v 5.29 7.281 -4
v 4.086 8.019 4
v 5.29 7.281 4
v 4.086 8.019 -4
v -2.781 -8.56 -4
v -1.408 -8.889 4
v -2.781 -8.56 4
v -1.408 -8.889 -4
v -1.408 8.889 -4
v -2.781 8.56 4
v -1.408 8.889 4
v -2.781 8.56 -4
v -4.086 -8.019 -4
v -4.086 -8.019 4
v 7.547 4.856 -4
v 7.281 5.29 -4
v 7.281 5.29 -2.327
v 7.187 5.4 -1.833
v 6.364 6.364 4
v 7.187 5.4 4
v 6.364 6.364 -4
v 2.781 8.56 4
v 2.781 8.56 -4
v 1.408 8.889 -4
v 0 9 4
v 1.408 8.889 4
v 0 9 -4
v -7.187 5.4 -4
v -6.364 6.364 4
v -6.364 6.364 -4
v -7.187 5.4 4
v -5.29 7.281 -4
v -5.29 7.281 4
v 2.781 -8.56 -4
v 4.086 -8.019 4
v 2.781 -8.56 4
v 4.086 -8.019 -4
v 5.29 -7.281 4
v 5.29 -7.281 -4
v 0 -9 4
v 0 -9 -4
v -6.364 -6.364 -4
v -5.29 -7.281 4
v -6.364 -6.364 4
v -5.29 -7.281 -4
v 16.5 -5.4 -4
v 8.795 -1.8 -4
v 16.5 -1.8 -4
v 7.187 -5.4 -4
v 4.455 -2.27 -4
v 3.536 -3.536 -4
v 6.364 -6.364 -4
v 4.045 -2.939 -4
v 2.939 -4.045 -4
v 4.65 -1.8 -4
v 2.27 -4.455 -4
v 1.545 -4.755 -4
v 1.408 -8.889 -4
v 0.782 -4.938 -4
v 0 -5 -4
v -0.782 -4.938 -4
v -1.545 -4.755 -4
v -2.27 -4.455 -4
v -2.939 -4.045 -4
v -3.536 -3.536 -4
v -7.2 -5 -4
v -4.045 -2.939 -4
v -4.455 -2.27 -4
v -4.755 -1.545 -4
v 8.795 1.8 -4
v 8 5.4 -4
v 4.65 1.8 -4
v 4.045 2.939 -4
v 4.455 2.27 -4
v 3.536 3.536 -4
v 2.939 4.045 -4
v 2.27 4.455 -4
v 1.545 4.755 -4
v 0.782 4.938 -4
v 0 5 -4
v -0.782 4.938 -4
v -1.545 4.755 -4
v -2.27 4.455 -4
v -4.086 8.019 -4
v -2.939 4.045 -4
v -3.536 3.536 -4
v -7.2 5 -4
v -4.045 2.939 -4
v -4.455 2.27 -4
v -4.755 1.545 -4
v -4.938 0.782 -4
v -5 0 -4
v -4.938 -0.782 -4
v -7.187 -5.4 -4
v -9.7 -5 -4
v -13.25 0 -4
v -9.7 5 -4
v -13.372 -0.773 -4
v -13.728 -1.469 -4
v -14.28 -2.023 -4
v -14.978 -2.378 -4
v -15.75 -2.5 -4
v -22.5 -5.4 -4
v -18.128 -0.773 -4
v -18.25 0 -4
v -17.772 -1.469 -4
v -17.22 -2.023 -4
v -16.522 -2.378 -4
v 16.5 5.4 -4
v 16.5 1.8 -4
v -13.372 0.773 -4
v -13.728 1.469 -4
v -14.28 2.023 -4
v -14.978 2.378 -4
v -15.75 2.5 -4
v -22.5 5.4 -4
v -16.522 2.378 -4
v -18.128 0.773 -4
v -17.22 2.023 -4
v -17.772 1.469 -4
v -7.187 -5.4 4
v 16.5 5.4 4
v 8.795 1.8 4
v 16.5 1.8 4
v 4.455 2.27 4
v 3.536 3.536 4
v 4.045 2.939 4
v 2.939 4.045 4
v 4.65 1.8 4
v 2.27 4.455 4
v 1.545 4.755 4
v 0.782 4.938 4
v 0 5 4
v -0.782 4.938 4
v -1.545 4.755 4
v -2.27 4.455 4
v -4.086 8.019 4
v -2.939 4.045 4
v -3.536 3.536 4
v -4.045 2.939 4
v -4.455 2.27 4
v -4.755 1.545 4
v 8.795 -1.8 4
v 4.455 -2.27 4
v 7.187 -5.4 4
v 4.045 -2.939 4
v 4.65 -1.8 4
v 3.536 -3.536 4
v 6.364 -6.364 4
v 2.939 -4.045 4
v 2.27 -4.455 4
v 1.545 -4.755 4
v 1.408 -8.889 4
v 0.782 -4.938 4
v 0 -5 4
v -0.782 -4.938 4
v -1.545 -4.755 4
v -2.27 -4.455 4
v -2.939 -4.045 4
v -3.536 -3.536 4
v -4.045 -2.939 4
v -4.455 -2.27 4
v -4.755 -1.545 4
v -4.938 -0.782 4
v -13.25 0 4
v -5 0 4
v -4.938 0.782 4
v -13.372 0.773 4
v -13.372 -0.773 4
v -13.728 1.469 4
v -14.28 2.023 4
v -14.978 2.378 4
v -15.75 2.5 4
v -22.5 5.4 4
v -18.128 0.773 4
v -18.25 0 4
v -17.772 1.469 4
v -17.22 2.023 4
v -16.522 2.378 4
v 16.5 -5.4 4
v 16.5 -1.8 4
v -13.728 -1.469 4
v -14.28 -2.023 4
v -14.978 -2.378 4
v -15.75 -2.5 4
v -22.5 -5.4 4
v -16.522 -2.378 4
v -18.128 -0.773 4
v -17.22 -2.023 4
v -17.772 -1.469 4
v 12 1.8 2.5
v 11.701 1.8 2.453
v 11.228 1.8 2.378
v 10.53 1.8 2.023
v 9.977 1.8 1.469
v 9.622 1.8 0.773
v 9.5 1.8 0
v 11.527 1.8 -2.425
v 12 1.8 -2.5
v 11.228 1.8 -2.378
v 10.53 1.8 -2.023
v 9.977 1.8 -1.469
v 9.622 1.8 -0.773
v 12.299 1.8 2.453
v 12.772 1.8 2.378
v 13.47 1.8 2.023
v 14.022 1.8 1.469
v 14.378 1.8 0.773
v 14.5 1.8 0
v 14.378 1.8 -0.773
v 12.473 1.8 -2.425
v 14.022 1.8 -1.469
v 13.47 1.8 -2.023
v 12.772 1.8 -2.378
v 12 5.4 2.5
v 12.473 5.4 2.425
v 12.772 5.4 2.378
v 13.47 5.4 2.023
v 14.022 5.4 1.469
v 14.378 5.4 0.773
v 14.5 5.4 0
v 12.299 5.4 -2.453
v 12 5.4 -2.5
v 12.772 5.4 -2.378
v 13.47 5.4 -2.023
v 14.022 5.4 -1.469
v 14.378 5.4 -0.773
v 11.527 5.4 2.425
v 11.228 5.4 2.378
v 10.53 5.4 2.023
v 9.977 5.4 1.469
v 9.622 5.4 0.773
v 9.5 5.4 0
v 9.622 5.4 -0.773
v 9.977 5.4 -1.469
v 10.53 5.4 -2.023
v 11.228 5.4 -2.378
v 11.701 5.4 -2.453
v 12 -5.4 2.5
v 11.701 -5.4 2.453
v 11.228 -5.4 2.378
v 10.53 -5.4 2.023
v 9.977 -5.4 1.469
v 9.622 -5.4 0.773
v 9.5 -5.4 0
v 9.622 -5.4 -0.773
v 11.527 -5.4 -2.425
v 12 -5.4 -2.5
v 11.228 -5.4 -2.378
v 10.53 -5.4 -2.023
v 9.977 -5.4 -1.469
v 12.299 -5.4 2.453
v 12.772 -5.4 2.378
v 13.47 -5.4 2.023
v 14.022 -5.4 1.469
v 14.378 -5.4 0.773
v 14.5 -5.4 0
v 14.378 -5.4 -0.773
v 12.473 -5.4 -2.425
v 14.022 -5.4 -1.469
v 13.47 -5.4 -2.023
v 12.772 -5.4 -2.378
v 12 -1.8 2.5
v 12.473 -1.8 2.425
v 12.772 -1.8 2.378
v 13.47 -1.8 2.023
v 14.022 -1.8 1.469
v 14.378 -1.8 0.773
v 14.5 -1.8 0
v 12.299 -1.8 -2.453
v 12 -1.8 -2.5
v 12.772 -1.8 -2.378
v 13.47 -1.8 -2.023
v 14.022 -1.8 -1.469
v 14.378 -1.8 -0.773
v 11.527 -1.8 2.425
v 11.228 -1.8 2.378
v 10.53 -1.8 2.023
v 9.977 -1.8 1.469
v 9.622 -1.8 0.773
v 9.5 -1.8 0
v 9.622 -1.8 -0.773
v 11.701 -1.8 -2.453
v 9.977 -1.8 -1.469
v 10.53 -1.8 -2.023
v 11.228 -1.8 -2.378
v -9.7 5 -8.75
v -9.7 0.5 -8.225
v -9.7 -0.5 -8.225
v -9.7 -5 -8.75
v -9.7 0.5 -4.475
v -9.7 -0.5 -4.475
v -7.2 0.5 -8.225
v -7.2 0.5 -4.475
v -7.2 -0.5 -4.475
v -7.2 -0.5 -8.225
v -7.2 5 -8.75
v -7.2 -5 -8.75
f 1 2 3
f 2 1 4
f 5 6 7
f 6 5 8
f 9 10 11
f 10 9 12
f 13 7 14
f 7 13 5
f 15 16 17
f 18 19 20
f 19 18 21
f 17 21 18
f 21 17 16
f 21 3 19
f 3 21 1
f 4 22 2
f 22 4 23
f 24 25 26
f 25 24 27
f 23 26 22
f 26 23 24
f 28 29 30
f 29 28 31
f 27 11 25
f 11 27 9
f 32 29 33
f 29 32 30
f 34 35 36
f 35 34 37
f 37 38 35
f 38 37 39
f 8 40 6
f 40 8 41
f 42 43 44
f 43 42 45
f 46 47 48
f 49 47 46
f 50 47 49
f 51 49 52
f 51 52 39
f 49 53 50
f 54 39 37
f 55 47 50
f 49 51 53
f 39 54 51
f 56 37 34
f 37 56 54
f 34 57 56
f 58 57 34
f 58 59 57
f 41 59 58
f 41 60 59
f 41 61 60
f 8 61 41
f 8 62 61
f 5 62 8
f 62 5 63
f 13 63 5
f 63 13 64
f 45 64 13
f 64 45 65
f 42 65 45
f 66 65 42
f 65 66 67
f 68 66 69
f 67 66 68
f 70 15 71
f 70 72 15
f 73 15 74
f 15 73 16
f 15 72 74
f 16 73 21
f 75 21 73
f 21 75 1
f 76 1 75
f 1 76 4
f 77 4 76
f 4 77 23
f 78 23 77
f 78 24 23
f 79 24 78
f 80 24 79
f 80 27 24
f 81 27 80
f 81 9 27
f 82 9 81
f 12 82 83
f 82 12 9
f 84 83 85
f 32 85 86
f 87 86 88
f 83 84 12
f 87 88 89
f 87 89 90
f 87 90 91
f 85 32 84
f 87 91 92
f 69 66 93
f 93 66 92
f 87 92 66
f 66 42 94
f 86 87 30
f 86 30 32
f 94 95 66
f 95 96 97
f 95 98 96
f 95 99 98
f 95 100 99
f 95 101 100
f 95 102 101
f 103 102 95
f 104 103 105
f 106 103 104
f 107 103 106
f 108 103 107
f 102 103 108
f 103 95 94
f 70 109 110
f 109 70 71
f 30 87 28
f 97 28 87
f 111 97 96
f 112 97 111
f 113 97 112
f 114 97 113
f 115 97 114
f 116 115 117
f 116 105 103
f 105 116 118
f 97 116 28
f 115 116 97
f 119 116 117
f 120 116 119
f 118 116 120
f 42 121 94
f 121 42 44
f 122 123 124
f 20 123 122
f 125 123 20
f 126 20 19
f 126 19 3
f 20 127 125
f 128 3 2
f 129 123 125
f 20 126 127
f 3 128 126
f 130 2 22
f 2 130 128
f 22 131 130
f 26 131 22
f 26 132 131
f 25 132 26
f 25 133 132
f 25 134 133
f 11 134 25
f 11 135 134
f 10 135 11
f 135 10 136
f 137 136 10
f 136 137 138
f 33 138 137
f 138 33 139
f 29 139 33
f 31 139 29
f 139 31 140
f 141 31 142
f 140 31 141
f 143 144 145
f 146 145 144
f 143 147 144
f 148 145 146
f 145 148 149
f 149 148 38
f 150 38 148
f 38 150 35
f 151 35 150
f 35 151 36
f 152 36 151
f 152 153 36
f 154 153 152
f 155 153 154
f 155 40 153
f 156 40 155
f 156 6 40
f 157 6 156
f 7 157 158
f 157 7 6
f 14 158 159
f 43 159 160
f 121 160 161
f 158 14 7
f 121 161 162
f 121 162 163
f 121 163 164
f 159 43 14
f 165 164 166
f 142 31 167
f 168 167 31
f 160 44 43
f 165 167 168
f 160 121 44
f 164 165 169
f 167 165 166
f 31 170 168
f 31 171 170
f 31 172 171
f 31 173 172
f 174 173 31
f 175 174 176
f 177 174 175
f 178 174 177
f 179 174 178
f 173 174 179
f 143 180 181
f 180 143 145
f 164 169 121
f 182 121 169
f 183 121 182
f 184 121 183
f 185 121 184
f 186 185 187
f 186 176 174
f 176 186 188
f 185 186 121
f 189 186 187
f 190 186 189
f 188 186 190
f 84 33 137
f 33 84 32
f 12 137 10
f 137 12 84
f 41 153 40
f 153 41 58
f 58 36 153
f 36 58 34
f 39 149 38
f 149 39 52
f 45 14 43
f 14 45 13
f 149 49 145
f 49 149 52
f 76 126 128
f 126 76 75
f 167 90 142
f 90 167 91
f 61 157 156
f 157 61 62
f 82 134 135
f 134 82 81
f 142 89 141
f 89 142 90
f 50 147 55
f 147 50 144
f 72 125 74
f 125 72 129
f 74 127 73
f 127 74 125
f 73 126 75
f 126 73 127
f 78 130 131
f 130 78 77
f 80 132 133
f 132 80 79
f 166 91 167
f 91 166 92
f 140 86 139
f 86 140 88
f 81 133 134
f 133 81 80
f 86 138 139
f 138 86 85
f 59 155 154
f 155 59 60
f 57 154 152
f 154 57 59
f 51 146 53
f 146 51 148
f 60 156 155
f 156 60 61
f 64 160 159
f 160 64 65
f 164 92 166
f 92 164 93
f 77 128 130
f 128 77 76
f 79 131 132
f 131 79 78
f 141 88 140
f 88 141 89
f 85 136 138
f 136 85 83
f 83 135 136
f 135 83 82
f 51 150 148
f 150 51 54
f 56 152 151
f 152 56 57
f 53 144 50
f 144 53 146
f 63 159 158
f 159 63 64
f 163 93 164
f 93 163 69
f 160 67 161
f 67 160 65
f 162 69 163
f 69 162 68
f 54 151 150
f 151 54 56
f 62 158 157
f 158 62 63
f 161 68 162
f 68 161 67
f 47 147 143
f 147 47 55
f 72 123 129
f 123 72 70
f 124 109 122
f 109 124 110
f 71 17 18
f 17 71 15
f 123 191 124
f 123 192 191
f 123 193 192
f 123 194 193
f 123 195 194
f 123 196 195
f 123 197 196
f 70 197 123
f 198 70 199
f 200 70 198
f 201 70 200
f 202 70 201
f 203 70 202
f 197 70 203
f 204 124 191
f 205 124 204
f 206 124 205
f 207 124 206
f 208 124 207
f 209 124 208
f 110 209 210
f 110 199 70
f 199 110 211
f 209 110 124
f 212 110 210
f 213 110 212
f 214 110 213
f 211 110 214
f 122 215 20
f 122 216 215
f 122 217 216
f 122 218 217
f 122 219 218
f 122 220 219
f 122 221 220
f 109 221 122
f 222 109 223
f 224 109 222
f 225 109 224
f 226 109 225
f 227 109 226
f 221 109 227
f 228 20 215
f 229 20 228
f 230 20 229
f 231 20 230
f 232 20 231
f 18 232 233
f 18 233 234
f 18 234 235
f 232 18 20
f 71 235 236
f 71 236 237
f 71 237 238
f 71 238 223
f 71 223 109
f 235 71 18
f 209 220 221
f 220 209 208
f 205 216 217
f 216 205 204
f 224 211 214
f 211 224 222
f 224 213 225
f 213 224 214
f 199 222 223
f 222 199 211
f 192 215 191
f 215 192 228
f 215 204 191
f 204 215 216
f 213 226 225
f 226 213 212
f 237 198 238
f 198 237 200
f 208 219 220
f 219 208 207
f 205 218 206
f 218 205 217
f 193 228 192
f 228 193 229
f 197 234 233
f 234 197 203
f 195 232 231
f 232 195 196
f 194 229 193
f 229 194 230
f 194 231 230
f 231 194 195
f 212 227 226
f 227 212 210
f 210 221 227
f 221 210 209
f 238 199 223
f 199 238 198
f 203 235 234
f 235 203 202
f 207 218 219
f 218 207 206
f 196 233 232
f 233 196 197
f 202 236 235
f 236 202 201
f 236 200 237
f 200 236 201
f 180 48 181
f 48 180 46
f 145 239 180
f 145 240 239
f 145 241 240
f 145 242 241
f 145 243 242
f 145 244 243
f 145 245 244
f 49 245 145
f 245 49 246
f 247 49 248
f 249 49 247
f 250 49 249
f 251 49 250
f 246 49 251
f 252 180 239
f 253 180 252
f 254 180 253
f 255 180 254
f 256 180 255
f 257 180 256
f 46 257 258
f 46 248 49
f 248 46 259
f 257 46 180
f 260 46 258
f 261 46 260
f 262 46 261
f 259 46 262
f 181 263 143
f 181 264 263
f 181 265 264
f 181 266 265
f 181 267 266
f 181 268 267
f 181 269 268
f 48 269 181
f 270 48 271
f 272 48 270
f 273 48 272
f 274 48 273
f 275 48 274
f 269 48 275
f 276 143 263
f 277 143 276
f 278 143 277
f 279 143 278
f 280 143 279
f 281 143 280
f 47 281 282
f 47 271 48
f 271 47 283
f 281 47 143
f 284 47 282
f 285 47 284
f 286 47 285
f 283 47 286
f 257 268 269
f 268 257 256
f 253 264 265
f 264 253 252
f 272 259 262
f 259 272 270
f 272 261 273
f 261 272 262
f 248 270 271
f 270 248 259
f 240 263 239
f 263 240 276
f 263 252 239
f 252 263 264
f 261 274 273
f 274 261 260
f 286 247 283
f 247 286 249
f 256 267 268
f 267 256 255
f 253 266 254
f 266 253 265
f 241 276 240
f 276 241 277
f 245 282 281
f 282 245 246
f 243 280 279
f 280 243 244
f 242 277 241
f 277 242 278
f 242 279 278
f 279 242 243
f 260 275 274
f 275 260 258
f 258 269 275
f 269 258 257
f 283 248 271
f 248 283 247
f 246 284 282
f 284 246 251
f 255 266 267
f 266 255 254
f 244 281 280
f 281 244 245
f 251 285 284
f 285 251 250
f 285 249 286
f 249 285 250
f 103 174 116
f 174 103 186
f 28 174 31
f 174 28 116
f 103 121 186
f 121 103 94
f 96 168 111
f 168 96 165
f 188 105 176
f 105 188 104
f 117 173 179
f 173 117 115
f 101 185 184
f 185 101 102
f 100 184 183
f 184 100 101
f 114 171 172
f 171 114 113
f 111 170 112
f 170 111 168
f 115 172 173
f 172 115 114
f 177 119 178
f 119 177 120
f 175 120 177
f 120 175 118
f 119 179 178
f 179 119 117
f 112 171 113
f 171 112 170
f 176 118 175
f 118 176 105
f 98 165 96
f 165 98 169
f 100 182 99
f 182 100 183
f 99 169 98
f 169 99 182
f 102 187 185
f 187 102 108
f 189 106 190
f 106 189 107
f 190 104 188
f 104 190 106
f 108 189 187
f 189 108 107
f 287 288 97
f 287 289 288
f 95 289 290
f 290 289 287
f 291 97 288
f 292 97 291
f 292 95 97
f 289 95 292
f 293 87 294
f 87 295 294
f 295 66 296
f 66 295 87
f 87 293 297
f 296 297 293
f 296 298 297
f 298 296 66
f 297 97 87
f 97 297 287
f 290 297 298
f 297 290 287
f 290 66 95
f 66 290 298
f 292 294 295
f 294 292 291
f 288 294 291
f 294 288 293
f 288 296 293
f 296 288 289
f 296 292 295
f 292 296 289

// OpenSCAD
//////////////////////////////////////////////////////////////////////////////////////////////
// Public Domain Parametric Involute Spur Gear (and involute helical gear and involute rack)
// version 1.1
// by Leemon Baird, 2011, Leemon@Leemon.com
//http://www.thingiverse.com/thing:5505
//
// This file is public domain.  Use it for any purpose, including commercial
// applications.  Attribution would be nice, but is not required.  There is
// no warranty of any kind, including its correctness, usefulness, or safety.
// 
// This is parameterized involute spur (or helical) gear.  It is much simpler and less powerful than
// others on Thingiverse.  But it is public domain.  I implemented it from scratch from the 
// descriptions and equations on Wikipedia and the web, using Mathematica for calculations and testing,
// and I now release it into the public domain.
//
//		http://en.wikipedia.org/wiki/Involute_gear
//		http://en.wikipedia.org/wiki/Gear
//		http://en.wikipedia.org/wiki/List_of_gear_nomenclature
//		http://gtrebaol.free.fr/doc/catia/spur_gear.html
//		http://www.cs.cmu.edu/~rapidproto/mechanisms/chpt7.html
//
// The module gear() gives an involute spur gear, with reasonable defaults for all the parameters.
// Normally, you should just choose the first 4 parameters, and let the rest be default values.
// The module gear() gives a gear in the XY plane, centered on the origin, with one tooth centered on
// the positive Y axis.  The various functions below it take the same parameters, and return various
// measurements for the gear.  The most important is pitch_radius, which tells how far apart to space
// gears that are meshing, and adendum_radius, which gives the size of the region filled by the gear.
// A gear has a "pitch circle", which is an invisible circle that cuts through the middle of each
// tooth (though not the exact center). In order for two gears to mesh, their pitch circles should 
// just touch.  So the distance between their centers should be pitch_radius() for one, plus pitch_radius() 
// for the other, which gives the radii of their pitch circles.
//
// In order for two gears to mesh, they must have the same mm_per_tooth and pressure_angle parameters.  
// mm_per_tooth gives the number of millimeters of arc around the pitch circle covered by one tooth and one
// space between teeth.  The pitch angle controls how flat or bulged the sides of the teeth are.  Common
// values include 14.5 degrees and 20 degrees, and occasionally 25.  Though I've seen 28 recommended for
// plastic gears. Larger numbers bulge out more, giving stronger teeth, so 28 degrees is the default here.
//
// The ratio of number_of_teeth for two meshing gears gives how many times one will make a full 
// revolution when the the other makes one full revolution.  If the two numbers are coprime (i.e. 
// are not both divisible by the same number greater than 1), then every tooth on one gear
// will meet every tooth on the other, for more even wear.  So coprime numbers of teeth are good.
//
// The module rack() gives a rack, which is a bar with teeth.  A rack can mesh with any
// gear that has the same mm_per_tooth and pressure_angle.
//
// Some terminology: 
// The outline of a gear is a smooth circle (the "pitch circle") which has mountains and valleys
// added so it is toothed.  So there is an inner circle (the "root circle") that touches the 
// base of all the teeth, an outer circle that touches the tips of all the teeth,
// and the invisible pitch circle in between them.  There is also a "base circle", which can be smaller than
// all three of the others, which controls the shape of the teeth.  The side of each tooth lies on the path 
// that the end of a string would follow if it were wrapped tightly around the base circle, then slowly unwound.  
// That shape is an "involute", which gives this type of gear its name.
//
//////////////////////////////////////////////////////////////////////////////////////////////

//An involute spur gear, with reasonable defaults for all the parameters.
//Normally, you should just choose the first 4 parameters, and let the rest be default values.
//Meshing gears must match in mm_per_tooth, pressure_angle, and twist,
//and be separated by the sum of their pitch radii, which can be found with pitch_radius().
module gear (
	mm_per_tooth    = 3,    //this is the "circular pitch", the circumference of the pitch circle divided by the number of teeth
	number_of_teeth = 11,   //total number of teeth around the entire perimeter
	thickness       = 6,    //thickness of gear in mm
	hole_diameter   = 3,    //diameter of the hole in the center, in mm
	twist           = 0,    //teeth rotate this many degrees from bottom of gear to top.  360 makes the gear a screw with each thread going around once
	teeth_to_hide   = 0,    //number of teeth to delete to make this only a fraction of a circle
	pressure_angle  = 28,   //Controls how straight or bulged the tooth sides are. In degrees.
	clearance       = 0.0,  //gap between top of a tooth on one gear and bottom of valley on a meshing gear (in millimeters)
	backlash        = 0.0   //gap between two meshing teeth, in the direction along the circumference of the pitch circle
) {
	assign(pi = 3.1415926)
	assign(p  = mm_per_tooth * number_of_teeth / pi / 2)  //radius of pitch circle
	assign(c  = p + mm_per_tooth / pi - clearance)        //radius of outer circle
	assign(b  = p*cos(pressure_angle))                    //radius of base circle
	assign(r  = p-(c-p)-clearance)                        //radius of root circle
	assign(t  = mm_per_tooth/2-backlash/2)                //tooth thickness at pitch circle
	assign(k  = -iang(b, p) - t/2/p/pi*180) {             //angle to where involute meets base circle on each side of tooth
		union() {
			for (i = [0:number_of_teeth-teeth_to_hide-1] )
				rotate([0,0,i*360/number_of_teeth])
					linear_extrude(height = thickness, center = true, convexity = 10, twist = twist)
						polygon(
							points=[
								[0, -hole_diameter/10],
								polar(r, -181/number_of_teeth),
								polar(r, r<b ? k : -180/number_of_teeth),
								q7(0/5,r,b,c,k, 1),q7(1/5,r,b,c,k, 1),q7(2/5,r,b,c,k, 1),q7(3/5,r,b,c,k, 1),q7(4/5,r,b,c,k, 1),q7(5/5,r,b,c,k, 1),
								q7(5/5,r,b,c,k,-1),q7(4/5,r,b,c,k,-1),q7(3/5,r,b,c,k,-1),q7(2/5,r,b,c,k,-1),q7(1/5,r,b,c,k,-1),q7(0/5,r,b,c,k,-1),
								polar(r, r<b ? -k : 180/number_of_teeth),
								polar(r, 181/number_of_teeth)
							],
 							paths=[[0,1,2,3,4,5,6,7,8,9,10,11,12,13,14,15,16]]
						);
			translate([0,0,-3]) cylinder(h=2*thickness+1, r=hole_diameter/2, center=true, $fn=20);
		}
	}
};	
//these 4 functions are used by gear
function polar(r,theta)   = r*[sin(theta), cos(theta)];                            //convert polar to cartesian coordinates
function iang(r1,r2)      = sqrt((r2/r1)*(r2/r1) - 1)/3.1415926*180 - acos(r1/r2); //unwind a string this many degrees to go from radius r1 to radius r2
function q7(f,r,b,r2,t,s) = q6(b,s,t,(1-f)*max(b,r)+f*r2);                         //radius a fraction f up the curved side of the tooth 
function q6(b,s,t,d)      = polar(d,s*(iang(b,d)+t));                              //point at radius d on the involute curve



//These 5 functions let the user find the derived dimensions of the gear.
//A gear fits within a circle of radius outer_radius, and two gears should have
//their centers separated by the sum of their pictch_radius.
function circular_pitch  (mm_per_tooth=3) = mm_per_tooth;                     //tooth density expressed as "circular pitch" in millimeters
function diametral_pitch (mm_per_tooth=3) = 3.1415926 / mm_per_tooth;         //tooth density expressed as "diametral pitch" in teeth per millimeter
function module_value    (mm_per_tooth=3) = mm_per_tooth / pi;                //tooth density expressed as "module" or "modulus" in millimeters
function pitch_radius    (mm_per_tooth=3,number_of_teeth=11) = mm_per_tooth * number_of_teeth / 3.1415926 / 2;
function outer_radius    (mm_per_tooth=3,number_of_teeth=11,clearance=0.1)    //The gear fits entirely within a cylinder of this radius.
	= mm_per_tooth*(1+number_of_teeth/2)/3.1415926  - clearance;              

//////////////////////////////////////////////////////////////////////////////////////////////
//example gear train.  
//Try it with OpenSCAD View/Animate command with 20 steps and 24 FPS.
//The gears will continue to be rotated to mesh correctly if you change the number of teeth.

n1 = 13; //red gear number of teeth
echo("num",ceil(n1*(3.6)));
n2 = ceil(n1*(3.6)); //green gear
n3 = ceil(n1*(1.5)); //extra gear
//n3 = 5;  //blue gear
//n4 = 20; //orange gear
//n5 = 8;  //gray rack
mm_per_tooth = 8; //all meshing gears need the same mm_per_tooth (and the same pressure_angle)
thickness    = 5;
vert_shift = thickness/2;
big_gear_thickness = thickness*1.2;
big_gear_vert_shift = big_gear_thickness/2;
hole         = 5; // diameter in mm
height       = 12;

d1 =pitch_radius(mm_per_tooth,n1);
d12=pitch_radius(mm_per_tooth,n1) + pitch_radius(mm_per_tooth,n2);
//d13=pitch_radius(mm_per_tooth,n1) + pitch_radius(mm_per_tooth,n3);
//d14=pitch_radius(mm_per_tooth,n1) + pitch_radius(mm_per_tooth,n4);

o_r1=outer_radius(mm_per_tooth,n1);
o_r2=outer_radius(mm_per_tooth,n2);
p_r1=pitch_radius(mm_per_tooth,n1);
p_r2=pitch_radius(mm_per_tooth,n2);

pin_radius    = (p_r1-(hole/2))/4.5;
pin_height   = o_r1*1.75;
pin_shift    = (hole/2)+(p_r1*(3/7));
canvas_thickness = big_gear_thickness/4;
bar_width = pin_radius*4;
bar_length = o_r1*11.76;
bar_hole_length = bar_length*.9;
support_radius = hole;
support_height = pin_height/2-thickness/2-1.5;

sharpie = 5;
radiusOuter = 9;
height = 8;
penHolder();


module penHolder() {
    union() {
        union() {
            union() {
                difference(){
                    difference() {
                        cylinder(height, radiusOuter, radiusOuter, true, $fn=40);
                        translate([0,0,-0.5]) cylinder(height+2, sharpie, sharpie, true, $fn=40);
                    }
                    cutOut(radiusOuter/2,height);
                }
                translate([0,0,0]) clasps(radiusOuter/2,height);
            }
        translate([-radiusOuter*2.25,0,0]) handle(radiusOuter,height);
        }
        // support under penholder
        difference () {
            translate([-thickness*1.69,0,-thickness]) cube(size=[thickness/2,thickness*2,thickness*1.5], center=true);
            translate([-thickness*1.4,0,-thickness*1.27]) cube(size=[bar_width,1,thickness*.75], center=true);
        }
    }
}


//Should be large enough to allow some standard sized
//screw through- use two washers to tighten around pen
module clasps(radius,height) {
    union() {
       translate([0,2*radius/5,0]) sideWall(radius,height);
       translate([0,-6*radius/5,0]) sideWall(radius,height);
    }
}

module handle(radius,height) {
CutPoints = [
  [ -radius*.25,  -3*radius/5,  -height/2 ],  //0
  [ radius*1.5,  -3*radius/5,  -height/2 ],  //1
  [ radius*1.5,  3*radius/5,  -height/2 ],  //2
  [ -radius*.25,  3*radius/5,  -height/2 ],  //3
  [ -radius*.25,  -3*radius/5,  height/2 ],  //4
  [ radius*1.5,  -3*radius/5,  height/2 ],  //5
  [ radius*1.5,  3*radius/5,  height/2 ],  //6
  [ -radius*.25,  3*radius/5,  height/2 ]]; //7
  
CutFaces = [
  [0,1,2,3],  // bottom
  [4,5,1,0],  // front
  [7,6,5,4],  // top
  [5,6,2,1],  // right
  [6,7,3,2],  // back
  [7,4,0,3]]; // left

difference() { 
    polyhedron(CutPoints, CutFaces);
    translate([radius*0.5,0,0]) cylinder(height*2, 2.5, 2.5, true, $fn=20);
}
}

module sideWall(radius,height) {
WallPoints = [
  [  sharpie,  0,  -height/2 ],  //0
  [ radius*3+3,  0,  -height/2 ],  //1
  [ radius*3+3,  radius*4/5,  -height/2 ],  //2
  [  sharpie+3,  radius*4/5,  -height/2 ],  //3
  [  sharpie,  0,  height/2 ],  //4
  [ radius*3+3,  0,  height/2 ],  //5
  [ radius*3+3,  radius*4/5,  height/2 ],  //6
  [  sharpie,  radius*4/5,  height/2 ]]; //7
  
WallFaces = [
  [0,1,2,3],  // bottom
  [4,5,1,0],  // front
  [7,6,5,4],  // top
  [5,6,2,1],  // right
  [6,7,3,2],  // back
  [7,4,0,3]]; // left
  
difference() {  
    polyhedron(WallPoints, WallFaces);
    rotate([90,0,0]) translate([radiusOuter+3,0,-2*radius/5]) cylinder(height*2, 2.5, 2.5, true, $fn=20);
}
}

module cutOut(radius,height) {
CutPoints = [
  [  0,  -2*radius/5,  -height ],  //0
  [ radius*2,  -2*radius/5,  -height ],  //1
  [ radius*2,  2*radius/5,  -height ],  //2
  [  0,  2*radius/5,  -height ],  //3
  [  0,  -2*radius/5,  height ],  //4
  [ radius*2,  -2*radius/5,  height ],  //5
  [ radius*2,  2*radius/5,  height ],  //6
  [  0,  2*radius/5,  height ]]; //7
  
CutFaces = [
  [0,1,2,3],  // bottom
  [4,5,1,0],  // front
  [7,6,5,4],  // top
  [5,6,2,1],  // right
  [6,7,3,2],  // back
  [7,4,0,3]]; // left
    
polyhedron(CutPoints, CutFaces);
}

    
echo("outer radius small: ", o_r1);
echo("outer radius large: ", o_r2);
echo("pitch radius small: ", p_r1);
echo("pitch radius large: ", p_r2);
echo("pin_radius: ", pin_radius);
echo("pin_height: ", pin_height);
echo("bar_width: ", bar_width);
echo("bar_length: ", bar_length);
echo("n1: ", n1);
echo("n2: ", n2);
echo("n3: ", n3);
